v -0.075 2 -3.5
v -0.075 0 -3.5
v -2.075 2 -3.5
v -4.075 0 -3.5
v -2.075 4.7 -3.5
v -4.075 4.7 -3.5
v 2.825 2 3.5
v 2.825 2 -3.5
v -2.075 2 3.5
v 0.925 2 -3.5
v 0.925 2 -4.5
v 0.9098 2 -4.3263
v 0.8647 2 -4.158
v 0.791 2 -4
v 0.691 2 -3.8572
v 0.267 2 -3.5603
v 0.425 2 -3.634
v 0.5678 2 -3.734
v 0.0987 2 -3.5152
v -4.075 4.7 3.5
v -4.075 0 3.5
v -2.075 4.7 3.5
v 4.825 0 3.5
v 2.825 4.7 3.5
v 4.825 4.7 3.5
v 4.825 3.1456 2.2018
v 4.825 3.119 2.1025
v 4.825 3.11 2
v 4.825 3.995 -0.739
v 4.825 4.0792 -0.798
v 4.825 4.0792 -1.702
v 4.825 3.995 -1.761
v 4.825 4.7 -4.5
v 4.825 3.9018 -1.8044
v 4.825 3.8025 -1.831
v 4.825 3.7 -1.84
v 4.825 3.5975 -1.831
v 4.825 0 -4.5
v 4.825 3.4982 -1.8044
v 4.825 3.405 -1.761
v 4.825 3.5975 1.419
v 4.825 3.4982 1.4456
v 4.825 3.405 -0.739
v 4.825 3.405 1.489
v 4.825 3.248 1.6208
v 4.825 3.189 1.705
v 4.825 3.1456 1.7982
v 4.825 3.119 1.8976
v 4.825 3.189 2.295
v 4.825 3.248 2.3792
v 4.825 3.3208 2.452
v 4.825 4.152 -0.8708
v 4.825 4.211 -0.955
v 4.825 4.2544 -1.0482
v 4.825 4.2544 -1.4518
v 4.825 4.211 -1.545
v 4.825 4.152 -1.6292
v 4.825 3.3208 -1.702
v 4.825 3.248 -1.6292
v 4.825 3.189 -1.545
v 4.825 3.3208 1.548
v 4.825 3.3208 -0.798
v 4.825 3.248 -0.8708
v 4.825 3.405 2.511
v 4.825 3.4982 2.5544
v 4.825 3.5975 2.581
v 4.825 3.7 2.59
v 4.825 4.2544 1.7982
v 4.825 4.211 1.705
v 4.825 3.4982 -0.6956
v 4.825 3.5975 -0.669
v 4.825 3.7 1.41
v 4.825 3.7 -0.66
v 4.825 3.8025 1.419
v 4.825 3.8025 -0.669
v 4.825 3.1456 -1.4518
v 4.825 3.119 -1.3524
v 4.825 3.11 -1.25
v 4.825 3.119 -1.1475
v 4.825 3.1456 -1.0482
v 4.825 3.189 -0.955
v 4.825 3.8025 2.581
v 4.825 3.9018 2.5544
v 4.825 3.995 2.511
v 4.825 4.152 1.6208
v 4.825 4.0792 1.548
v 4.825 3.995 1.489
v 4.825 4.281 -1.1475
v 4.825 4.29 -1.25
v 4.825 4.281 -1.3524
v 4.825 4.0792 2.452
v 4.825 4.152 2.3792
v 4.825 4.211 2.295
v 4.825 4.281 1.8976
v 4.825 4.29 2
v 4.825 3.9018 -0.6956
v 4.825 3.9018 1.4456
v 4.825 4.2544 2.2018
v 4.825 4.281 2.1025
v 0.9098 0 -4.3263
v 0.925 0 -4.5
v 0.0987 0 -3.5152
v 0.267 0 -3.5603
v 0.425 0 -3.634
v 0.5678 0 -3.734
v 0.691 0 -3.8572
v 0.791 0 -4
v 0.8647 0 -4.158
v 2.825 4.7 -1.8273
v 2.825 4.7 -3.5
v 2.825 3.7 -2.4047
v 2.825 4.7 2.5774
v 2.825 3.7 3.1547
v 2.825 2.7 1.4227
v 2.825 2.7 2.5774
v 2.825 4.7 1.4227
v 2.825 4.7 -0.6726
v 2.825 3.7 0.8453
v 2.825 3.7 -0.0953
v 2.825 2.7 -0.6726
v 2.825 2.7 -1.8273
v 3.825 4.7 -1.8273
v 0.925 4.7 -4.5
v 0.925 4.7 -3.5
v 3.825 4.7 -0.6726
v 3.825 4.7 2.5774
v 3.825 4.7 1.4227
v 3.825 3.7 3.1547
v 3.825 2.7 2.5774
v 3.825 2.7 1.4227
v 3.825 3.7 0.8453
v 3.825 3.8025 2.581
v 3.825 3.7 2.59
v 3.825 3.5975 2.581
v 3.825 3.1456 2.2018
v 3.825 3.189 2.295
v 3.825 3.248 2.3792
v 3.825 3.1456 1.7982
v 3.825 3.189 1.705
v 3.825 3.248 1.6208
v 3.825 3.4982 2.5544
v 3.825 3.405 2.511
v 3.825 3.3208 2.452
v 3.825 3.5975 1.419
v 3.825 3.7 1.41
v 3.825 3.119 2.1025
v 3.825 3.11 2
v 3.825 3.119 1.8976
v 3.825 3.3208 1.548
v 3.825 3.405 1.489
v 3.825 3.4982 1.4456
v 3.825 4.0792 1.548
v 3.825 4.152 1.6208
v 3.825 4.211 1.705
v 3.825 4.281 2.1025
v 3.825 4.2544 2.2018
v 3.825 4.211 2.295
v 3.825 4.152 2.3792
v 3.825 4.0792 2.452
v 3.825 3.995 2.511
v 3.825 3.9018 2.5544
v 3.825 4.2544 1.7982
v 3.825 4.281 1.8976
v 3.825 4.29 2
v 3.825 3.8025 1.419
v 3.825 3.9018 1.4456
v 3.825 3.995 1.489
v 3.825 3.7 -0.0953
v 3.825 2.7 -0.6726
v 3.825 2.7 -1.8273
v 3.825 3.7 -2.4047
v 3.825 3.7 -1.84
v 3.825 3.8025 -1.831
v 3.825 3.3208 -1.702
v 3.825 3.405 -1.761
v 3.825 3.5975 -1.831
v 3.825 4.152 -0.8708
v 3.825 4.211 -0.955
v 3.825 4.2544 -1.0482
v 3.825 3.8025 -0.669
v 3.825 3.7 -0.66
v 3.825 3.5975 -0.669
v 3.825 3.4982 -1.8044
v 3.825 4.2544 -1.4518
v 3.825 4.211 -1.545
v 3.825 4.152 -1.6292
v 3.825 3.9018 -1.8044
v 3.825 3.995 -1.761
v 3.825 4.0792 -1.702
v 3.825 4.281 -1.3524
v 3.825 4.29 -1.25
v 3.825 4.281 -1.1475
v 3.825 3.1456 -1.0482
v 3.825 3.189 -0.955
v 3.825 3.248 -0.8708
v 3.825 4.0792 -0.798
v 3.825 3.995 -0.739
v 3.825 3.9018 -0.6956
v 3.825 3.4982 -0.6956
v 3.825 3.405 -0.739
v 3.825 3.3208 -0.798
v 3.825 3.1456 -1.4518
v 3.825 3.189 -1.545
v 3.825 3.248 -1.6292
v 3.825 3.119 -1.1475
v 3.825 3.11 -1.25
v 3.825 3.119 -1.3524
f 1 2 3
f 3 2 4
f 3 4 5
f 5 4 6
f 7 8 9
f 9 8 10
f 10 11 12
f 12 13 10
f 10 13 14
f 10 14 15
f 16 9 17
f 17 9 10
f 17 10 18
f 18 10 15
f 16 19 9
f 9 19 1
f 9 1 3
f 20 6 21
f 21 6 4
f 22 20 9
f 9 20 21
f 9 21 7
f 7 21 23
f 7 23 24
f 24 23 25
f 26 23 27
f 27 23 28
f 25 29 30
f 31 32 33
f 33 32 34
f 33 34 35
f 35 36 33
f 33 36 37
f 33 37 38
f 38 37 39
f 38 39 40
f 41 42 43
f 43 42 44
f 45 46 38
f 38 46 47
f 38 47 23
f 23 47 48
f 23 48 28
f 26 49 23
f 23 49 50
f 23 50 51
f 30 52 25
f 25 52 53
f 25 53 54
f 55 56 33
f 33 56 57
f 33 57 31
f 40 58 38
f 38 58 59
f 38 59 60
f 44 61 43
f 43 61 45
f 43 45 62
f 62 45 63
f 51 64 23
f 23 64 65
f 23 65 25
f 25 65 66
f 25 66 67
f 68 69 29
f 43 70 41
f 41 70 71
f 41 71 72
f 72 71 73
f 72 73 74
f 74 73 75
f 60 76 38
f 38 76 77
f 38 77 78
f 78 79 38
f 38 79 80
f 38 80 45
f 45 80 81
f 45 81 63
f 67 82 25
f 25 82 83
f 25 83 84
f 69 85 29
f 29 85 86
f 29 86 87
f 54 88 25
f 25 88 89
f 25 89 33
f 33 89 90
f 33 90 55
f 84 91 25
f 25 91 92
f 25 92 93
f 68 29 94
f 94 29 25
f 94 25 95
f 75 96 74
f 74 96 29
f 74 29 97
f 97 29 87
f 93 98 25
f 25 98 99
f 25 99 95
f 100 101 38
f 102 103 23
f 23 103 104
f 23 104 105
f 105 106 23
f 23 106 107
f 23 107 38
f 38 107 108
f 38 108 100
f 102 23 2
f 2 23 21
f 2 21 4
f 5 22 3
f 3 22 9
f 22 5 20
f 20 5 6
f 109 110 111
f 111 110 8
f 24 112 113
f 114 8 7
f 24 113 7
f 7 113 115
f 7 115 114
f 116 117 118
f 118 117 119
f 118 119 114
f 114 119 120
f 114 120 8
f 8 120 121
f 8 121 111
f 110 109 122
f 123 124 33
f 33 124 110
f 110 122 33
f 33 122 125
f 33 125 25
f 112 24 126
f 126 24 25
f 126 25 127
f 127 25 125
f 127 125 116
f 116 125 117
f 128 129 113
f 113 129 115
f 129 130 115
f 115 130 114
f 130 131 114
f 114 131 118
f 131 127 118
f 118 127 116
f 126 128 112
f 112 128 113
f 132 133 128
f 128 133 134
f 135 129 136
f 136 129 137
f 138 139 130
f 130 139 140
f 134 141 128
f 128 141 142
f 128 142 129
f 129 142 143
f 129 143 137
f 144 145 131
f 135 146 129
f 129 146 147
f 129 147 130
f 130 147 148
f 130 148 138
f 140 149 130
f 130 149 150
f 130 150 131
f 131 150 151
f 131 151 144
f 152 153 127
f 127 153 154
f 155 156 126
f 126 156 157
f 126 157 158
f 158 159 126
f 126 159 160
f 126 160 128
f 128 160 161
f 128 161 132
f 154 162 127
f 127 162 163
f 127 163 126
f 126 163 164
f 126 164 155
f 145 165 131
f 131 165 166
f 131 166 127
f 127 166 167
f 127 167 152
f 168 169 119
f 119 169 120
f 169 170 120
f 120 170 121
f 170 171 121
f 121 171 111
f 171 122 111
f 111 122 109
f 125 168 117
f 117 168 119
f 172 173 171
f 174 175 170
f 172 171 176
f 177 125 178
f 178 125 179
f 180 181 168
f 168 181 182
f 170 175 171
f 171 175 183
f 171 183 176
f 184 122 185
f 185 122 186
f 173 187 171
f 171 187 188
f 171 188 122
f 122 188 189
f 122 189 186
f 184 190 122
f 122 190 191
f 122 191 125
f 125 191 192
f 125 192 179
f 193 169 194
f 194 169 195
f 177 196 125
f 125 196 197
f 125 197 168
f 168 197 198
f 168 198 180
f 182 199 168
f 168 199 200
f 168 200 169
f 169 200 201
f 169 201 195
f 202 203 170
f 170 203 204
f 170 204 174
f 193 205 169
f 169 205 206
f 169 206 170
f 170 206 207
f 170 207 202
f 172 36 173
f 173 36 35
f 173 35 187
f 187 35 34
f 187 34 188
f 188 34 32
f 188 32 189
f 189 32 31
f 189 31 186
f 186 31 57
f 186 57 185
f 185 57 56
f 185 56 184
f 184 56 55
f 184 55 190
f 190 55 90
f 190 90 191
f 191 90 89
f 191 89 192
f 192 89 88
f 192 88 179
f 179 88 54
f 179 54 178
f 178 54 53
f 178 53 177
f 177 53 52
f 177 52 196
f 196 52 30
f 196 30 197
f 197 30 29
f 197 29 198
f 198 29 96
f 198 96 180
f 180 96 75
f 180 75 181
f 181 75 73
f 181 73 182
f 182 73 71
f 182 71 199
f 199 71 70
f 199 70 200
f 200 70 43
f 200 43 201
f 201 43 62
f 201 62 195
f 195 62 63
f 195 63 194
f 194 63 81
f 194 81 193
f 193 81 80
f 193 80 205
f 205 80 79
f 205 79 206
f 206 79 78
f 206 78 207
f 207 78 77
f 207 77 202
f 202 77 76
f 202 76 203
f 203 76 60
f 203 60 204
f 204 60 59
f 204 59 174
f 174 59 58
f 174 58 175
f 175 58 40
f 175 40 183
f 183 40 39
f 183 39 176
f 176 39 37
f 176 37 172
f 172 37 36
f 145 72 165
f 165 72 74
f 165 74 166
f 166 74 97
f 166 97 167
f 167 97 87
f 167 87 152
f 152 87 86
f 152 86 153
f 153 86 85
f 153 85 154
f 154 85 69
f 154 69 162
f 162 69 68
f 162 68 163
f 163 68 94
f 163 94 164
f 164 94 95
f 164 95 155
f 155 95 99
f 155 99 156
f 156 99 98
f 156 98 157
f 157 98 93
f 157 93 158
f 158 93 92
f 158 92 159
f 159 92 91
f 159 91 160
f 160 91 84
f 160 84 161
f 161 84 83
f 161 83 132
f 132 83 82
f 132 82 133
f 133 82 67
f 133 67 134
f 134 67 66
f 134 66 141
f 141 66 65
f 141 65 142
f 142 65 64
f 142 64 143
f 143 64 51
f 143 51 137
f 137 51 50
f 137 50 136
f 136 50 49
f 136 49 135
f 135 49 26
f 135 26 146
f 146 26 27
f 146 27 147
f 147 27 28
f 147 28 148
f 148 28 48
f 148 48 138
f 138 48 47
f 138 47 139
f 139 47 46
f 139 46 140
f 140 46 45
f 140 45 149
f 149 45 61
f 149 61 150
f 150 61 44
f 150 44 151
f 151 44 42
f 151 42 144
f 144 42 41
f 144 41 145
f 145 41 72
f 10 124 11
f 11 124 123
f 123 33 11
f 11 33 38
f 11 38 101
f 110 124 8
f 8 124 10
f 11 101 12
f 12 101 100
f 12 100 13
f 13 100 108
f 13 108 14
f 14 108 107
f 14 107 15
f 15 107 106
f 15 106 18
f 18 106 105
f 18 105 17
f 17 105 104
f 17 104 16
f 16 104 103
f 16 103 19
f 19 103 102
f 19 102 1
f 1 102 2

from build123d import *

# Parameters (mm, degrees)
BOSS_EXTRUDE1_DEPTH = 2
SKETCH2_W           = 2
SKETCH2_H           = 7
BOSS_EXTRUDE2_DEPTH = 2.7
CUT_EXTRUDE1_DEPTH  = 1
CUT_EXTRUDE2_REACH  = 12.656
SKETCH4_R           = 0.59
SKETCH5_W           = 3.9
SKETCH5_H           = 4.7
BOSS_EXTRUDE3_DEPTH = 1
FILLET1_R           = 1


with BuildPart() as part:
    # Sketch1 → Boss-Extrude1 (new body)
    with BuildSketch(Plane(origin=(0, 0, 0), x_dir=(1, 0, 0), z_dir=(0, 1, 0))):
        Polygon((2.075, -3.5), (2.825, -3.5), (3.825, -3.5), (4.825, -3.5), (4.825, 3.5), (3.825, 3.5), (2.825, 3.5), (2.075, 3.5), (-2.075, 3.5), (-4.075, 3.5), (-4.075, -3.5), (-2.075, -3.5), align=None)
    extrude(amount=BOSS_EXTRUDE1_DEPTH)

    # Sketch2 → Boss-Extrude2 (add)
    with BuildSketch(Plane(origin=(0, 2, 0), x_dir=(1, 0, 0), z_dir=(0, 1, 0))):
        with Locations((-3.075, 0)):
            Rectangle(SKETCH2_W, SKETCH2_H)
        with Locations((3.825, 0)):
            Rectangle(SKETCH2_W, SKETCH2_H)
    extrude(amount=BOSS_EXTRUDE2_DEPTH)

    # Sketch3 → Cut-Extrude1 (cut)
    with BuildSketch(Plane.ZY.offset(-2.825)):
        Polygon((-0.095299462, 3.7), (-0.672649731, 4.7), (-1.827350269, 4.7), (-2.404700538, 3.7), (-1.827350269, 2.7), (-0.672649731, 2.7), align=None)
        Polygon((3.154700538, 3.7), (2.577350269, 4.7), (1.422649731, 4.7), (0.845299462, 3.7), (1.422649731, 2.7), (2.577350269, 2.7), align=None)
    extrude(amount=-CUT_EXTRUDE1_DEPTH, mode=Mode.SUBTRACT)

    # Sketch4 → Cut-Extrude2 (cut, up to next)
    with BuildSketch(Plane(origin=(4.825, 0, 0), x_dir=(0, 0, -1), z_dir=(1, 0, 0)), mode=Mode.PRIVATE) as cut_extrude2_sk1:
        with Locations((-2, 3.7)):
            Circle(SKETCH4_R)
    cut_extrude2_tool1 = extrude(cut_extrude2_sk1.sketch, amount=-CUT_EXTRUDE2_REACH, mode=Mode.PRIVATE) & part.part
    # Sketch4 → Cut-Extrude2 (cut, up to next)
    with BuildSketch(Plane(origin=(4.825, 0, 0), x_dir=(0, 0, -1), z_dir=(1, 0, 0)), mode=Mode.PRIVATE) as cut_extrude2_sk2:
        with Locations((1.25, 3.7)):
            Circle(SKETCH4_R)
    cut_extrude2_tool2 = extrude(cut_extrude2_sk2.sketch, amount=-CUT_EXTRUDE2_REACH, mode=Mode.PRIVATE) & part.part
    add(cut_extrude2_tool1.solids().sort_by_distance((4.825, 3.7, 2))[0], mode=Mode.SUBTRACT)
    add(cut_extrude2_tool2.solids().sort_by_distance((4.825, 3.7, -1.25))[0], mode=Mode.SUBTRACT)

    # Sketch5 → Boss-Extrude3 (add)
    with BuildSketch(Plane(origin=(0, 0, -3.5), x_dir=(-1, 0, 0), z_dir=(0, 0, -1))):
        with Locations((-2.875, 2.35)):
            Rectangle(SKETCH5_W, SKETCH5_H)
    extrude(amount=BOSS_EXTRUDE3_DEPTH)

    # Fillet1
    fillet1_edges = [part.edges().sort_by_distance(p)[0] for p in [
        (0.925, 1, -3.5),
    ]]
    fillet(fillet1_edges, radius=FILLET1_R - 0.0001)  # a hair under: the kernel refuses the full size


solid = part.part
